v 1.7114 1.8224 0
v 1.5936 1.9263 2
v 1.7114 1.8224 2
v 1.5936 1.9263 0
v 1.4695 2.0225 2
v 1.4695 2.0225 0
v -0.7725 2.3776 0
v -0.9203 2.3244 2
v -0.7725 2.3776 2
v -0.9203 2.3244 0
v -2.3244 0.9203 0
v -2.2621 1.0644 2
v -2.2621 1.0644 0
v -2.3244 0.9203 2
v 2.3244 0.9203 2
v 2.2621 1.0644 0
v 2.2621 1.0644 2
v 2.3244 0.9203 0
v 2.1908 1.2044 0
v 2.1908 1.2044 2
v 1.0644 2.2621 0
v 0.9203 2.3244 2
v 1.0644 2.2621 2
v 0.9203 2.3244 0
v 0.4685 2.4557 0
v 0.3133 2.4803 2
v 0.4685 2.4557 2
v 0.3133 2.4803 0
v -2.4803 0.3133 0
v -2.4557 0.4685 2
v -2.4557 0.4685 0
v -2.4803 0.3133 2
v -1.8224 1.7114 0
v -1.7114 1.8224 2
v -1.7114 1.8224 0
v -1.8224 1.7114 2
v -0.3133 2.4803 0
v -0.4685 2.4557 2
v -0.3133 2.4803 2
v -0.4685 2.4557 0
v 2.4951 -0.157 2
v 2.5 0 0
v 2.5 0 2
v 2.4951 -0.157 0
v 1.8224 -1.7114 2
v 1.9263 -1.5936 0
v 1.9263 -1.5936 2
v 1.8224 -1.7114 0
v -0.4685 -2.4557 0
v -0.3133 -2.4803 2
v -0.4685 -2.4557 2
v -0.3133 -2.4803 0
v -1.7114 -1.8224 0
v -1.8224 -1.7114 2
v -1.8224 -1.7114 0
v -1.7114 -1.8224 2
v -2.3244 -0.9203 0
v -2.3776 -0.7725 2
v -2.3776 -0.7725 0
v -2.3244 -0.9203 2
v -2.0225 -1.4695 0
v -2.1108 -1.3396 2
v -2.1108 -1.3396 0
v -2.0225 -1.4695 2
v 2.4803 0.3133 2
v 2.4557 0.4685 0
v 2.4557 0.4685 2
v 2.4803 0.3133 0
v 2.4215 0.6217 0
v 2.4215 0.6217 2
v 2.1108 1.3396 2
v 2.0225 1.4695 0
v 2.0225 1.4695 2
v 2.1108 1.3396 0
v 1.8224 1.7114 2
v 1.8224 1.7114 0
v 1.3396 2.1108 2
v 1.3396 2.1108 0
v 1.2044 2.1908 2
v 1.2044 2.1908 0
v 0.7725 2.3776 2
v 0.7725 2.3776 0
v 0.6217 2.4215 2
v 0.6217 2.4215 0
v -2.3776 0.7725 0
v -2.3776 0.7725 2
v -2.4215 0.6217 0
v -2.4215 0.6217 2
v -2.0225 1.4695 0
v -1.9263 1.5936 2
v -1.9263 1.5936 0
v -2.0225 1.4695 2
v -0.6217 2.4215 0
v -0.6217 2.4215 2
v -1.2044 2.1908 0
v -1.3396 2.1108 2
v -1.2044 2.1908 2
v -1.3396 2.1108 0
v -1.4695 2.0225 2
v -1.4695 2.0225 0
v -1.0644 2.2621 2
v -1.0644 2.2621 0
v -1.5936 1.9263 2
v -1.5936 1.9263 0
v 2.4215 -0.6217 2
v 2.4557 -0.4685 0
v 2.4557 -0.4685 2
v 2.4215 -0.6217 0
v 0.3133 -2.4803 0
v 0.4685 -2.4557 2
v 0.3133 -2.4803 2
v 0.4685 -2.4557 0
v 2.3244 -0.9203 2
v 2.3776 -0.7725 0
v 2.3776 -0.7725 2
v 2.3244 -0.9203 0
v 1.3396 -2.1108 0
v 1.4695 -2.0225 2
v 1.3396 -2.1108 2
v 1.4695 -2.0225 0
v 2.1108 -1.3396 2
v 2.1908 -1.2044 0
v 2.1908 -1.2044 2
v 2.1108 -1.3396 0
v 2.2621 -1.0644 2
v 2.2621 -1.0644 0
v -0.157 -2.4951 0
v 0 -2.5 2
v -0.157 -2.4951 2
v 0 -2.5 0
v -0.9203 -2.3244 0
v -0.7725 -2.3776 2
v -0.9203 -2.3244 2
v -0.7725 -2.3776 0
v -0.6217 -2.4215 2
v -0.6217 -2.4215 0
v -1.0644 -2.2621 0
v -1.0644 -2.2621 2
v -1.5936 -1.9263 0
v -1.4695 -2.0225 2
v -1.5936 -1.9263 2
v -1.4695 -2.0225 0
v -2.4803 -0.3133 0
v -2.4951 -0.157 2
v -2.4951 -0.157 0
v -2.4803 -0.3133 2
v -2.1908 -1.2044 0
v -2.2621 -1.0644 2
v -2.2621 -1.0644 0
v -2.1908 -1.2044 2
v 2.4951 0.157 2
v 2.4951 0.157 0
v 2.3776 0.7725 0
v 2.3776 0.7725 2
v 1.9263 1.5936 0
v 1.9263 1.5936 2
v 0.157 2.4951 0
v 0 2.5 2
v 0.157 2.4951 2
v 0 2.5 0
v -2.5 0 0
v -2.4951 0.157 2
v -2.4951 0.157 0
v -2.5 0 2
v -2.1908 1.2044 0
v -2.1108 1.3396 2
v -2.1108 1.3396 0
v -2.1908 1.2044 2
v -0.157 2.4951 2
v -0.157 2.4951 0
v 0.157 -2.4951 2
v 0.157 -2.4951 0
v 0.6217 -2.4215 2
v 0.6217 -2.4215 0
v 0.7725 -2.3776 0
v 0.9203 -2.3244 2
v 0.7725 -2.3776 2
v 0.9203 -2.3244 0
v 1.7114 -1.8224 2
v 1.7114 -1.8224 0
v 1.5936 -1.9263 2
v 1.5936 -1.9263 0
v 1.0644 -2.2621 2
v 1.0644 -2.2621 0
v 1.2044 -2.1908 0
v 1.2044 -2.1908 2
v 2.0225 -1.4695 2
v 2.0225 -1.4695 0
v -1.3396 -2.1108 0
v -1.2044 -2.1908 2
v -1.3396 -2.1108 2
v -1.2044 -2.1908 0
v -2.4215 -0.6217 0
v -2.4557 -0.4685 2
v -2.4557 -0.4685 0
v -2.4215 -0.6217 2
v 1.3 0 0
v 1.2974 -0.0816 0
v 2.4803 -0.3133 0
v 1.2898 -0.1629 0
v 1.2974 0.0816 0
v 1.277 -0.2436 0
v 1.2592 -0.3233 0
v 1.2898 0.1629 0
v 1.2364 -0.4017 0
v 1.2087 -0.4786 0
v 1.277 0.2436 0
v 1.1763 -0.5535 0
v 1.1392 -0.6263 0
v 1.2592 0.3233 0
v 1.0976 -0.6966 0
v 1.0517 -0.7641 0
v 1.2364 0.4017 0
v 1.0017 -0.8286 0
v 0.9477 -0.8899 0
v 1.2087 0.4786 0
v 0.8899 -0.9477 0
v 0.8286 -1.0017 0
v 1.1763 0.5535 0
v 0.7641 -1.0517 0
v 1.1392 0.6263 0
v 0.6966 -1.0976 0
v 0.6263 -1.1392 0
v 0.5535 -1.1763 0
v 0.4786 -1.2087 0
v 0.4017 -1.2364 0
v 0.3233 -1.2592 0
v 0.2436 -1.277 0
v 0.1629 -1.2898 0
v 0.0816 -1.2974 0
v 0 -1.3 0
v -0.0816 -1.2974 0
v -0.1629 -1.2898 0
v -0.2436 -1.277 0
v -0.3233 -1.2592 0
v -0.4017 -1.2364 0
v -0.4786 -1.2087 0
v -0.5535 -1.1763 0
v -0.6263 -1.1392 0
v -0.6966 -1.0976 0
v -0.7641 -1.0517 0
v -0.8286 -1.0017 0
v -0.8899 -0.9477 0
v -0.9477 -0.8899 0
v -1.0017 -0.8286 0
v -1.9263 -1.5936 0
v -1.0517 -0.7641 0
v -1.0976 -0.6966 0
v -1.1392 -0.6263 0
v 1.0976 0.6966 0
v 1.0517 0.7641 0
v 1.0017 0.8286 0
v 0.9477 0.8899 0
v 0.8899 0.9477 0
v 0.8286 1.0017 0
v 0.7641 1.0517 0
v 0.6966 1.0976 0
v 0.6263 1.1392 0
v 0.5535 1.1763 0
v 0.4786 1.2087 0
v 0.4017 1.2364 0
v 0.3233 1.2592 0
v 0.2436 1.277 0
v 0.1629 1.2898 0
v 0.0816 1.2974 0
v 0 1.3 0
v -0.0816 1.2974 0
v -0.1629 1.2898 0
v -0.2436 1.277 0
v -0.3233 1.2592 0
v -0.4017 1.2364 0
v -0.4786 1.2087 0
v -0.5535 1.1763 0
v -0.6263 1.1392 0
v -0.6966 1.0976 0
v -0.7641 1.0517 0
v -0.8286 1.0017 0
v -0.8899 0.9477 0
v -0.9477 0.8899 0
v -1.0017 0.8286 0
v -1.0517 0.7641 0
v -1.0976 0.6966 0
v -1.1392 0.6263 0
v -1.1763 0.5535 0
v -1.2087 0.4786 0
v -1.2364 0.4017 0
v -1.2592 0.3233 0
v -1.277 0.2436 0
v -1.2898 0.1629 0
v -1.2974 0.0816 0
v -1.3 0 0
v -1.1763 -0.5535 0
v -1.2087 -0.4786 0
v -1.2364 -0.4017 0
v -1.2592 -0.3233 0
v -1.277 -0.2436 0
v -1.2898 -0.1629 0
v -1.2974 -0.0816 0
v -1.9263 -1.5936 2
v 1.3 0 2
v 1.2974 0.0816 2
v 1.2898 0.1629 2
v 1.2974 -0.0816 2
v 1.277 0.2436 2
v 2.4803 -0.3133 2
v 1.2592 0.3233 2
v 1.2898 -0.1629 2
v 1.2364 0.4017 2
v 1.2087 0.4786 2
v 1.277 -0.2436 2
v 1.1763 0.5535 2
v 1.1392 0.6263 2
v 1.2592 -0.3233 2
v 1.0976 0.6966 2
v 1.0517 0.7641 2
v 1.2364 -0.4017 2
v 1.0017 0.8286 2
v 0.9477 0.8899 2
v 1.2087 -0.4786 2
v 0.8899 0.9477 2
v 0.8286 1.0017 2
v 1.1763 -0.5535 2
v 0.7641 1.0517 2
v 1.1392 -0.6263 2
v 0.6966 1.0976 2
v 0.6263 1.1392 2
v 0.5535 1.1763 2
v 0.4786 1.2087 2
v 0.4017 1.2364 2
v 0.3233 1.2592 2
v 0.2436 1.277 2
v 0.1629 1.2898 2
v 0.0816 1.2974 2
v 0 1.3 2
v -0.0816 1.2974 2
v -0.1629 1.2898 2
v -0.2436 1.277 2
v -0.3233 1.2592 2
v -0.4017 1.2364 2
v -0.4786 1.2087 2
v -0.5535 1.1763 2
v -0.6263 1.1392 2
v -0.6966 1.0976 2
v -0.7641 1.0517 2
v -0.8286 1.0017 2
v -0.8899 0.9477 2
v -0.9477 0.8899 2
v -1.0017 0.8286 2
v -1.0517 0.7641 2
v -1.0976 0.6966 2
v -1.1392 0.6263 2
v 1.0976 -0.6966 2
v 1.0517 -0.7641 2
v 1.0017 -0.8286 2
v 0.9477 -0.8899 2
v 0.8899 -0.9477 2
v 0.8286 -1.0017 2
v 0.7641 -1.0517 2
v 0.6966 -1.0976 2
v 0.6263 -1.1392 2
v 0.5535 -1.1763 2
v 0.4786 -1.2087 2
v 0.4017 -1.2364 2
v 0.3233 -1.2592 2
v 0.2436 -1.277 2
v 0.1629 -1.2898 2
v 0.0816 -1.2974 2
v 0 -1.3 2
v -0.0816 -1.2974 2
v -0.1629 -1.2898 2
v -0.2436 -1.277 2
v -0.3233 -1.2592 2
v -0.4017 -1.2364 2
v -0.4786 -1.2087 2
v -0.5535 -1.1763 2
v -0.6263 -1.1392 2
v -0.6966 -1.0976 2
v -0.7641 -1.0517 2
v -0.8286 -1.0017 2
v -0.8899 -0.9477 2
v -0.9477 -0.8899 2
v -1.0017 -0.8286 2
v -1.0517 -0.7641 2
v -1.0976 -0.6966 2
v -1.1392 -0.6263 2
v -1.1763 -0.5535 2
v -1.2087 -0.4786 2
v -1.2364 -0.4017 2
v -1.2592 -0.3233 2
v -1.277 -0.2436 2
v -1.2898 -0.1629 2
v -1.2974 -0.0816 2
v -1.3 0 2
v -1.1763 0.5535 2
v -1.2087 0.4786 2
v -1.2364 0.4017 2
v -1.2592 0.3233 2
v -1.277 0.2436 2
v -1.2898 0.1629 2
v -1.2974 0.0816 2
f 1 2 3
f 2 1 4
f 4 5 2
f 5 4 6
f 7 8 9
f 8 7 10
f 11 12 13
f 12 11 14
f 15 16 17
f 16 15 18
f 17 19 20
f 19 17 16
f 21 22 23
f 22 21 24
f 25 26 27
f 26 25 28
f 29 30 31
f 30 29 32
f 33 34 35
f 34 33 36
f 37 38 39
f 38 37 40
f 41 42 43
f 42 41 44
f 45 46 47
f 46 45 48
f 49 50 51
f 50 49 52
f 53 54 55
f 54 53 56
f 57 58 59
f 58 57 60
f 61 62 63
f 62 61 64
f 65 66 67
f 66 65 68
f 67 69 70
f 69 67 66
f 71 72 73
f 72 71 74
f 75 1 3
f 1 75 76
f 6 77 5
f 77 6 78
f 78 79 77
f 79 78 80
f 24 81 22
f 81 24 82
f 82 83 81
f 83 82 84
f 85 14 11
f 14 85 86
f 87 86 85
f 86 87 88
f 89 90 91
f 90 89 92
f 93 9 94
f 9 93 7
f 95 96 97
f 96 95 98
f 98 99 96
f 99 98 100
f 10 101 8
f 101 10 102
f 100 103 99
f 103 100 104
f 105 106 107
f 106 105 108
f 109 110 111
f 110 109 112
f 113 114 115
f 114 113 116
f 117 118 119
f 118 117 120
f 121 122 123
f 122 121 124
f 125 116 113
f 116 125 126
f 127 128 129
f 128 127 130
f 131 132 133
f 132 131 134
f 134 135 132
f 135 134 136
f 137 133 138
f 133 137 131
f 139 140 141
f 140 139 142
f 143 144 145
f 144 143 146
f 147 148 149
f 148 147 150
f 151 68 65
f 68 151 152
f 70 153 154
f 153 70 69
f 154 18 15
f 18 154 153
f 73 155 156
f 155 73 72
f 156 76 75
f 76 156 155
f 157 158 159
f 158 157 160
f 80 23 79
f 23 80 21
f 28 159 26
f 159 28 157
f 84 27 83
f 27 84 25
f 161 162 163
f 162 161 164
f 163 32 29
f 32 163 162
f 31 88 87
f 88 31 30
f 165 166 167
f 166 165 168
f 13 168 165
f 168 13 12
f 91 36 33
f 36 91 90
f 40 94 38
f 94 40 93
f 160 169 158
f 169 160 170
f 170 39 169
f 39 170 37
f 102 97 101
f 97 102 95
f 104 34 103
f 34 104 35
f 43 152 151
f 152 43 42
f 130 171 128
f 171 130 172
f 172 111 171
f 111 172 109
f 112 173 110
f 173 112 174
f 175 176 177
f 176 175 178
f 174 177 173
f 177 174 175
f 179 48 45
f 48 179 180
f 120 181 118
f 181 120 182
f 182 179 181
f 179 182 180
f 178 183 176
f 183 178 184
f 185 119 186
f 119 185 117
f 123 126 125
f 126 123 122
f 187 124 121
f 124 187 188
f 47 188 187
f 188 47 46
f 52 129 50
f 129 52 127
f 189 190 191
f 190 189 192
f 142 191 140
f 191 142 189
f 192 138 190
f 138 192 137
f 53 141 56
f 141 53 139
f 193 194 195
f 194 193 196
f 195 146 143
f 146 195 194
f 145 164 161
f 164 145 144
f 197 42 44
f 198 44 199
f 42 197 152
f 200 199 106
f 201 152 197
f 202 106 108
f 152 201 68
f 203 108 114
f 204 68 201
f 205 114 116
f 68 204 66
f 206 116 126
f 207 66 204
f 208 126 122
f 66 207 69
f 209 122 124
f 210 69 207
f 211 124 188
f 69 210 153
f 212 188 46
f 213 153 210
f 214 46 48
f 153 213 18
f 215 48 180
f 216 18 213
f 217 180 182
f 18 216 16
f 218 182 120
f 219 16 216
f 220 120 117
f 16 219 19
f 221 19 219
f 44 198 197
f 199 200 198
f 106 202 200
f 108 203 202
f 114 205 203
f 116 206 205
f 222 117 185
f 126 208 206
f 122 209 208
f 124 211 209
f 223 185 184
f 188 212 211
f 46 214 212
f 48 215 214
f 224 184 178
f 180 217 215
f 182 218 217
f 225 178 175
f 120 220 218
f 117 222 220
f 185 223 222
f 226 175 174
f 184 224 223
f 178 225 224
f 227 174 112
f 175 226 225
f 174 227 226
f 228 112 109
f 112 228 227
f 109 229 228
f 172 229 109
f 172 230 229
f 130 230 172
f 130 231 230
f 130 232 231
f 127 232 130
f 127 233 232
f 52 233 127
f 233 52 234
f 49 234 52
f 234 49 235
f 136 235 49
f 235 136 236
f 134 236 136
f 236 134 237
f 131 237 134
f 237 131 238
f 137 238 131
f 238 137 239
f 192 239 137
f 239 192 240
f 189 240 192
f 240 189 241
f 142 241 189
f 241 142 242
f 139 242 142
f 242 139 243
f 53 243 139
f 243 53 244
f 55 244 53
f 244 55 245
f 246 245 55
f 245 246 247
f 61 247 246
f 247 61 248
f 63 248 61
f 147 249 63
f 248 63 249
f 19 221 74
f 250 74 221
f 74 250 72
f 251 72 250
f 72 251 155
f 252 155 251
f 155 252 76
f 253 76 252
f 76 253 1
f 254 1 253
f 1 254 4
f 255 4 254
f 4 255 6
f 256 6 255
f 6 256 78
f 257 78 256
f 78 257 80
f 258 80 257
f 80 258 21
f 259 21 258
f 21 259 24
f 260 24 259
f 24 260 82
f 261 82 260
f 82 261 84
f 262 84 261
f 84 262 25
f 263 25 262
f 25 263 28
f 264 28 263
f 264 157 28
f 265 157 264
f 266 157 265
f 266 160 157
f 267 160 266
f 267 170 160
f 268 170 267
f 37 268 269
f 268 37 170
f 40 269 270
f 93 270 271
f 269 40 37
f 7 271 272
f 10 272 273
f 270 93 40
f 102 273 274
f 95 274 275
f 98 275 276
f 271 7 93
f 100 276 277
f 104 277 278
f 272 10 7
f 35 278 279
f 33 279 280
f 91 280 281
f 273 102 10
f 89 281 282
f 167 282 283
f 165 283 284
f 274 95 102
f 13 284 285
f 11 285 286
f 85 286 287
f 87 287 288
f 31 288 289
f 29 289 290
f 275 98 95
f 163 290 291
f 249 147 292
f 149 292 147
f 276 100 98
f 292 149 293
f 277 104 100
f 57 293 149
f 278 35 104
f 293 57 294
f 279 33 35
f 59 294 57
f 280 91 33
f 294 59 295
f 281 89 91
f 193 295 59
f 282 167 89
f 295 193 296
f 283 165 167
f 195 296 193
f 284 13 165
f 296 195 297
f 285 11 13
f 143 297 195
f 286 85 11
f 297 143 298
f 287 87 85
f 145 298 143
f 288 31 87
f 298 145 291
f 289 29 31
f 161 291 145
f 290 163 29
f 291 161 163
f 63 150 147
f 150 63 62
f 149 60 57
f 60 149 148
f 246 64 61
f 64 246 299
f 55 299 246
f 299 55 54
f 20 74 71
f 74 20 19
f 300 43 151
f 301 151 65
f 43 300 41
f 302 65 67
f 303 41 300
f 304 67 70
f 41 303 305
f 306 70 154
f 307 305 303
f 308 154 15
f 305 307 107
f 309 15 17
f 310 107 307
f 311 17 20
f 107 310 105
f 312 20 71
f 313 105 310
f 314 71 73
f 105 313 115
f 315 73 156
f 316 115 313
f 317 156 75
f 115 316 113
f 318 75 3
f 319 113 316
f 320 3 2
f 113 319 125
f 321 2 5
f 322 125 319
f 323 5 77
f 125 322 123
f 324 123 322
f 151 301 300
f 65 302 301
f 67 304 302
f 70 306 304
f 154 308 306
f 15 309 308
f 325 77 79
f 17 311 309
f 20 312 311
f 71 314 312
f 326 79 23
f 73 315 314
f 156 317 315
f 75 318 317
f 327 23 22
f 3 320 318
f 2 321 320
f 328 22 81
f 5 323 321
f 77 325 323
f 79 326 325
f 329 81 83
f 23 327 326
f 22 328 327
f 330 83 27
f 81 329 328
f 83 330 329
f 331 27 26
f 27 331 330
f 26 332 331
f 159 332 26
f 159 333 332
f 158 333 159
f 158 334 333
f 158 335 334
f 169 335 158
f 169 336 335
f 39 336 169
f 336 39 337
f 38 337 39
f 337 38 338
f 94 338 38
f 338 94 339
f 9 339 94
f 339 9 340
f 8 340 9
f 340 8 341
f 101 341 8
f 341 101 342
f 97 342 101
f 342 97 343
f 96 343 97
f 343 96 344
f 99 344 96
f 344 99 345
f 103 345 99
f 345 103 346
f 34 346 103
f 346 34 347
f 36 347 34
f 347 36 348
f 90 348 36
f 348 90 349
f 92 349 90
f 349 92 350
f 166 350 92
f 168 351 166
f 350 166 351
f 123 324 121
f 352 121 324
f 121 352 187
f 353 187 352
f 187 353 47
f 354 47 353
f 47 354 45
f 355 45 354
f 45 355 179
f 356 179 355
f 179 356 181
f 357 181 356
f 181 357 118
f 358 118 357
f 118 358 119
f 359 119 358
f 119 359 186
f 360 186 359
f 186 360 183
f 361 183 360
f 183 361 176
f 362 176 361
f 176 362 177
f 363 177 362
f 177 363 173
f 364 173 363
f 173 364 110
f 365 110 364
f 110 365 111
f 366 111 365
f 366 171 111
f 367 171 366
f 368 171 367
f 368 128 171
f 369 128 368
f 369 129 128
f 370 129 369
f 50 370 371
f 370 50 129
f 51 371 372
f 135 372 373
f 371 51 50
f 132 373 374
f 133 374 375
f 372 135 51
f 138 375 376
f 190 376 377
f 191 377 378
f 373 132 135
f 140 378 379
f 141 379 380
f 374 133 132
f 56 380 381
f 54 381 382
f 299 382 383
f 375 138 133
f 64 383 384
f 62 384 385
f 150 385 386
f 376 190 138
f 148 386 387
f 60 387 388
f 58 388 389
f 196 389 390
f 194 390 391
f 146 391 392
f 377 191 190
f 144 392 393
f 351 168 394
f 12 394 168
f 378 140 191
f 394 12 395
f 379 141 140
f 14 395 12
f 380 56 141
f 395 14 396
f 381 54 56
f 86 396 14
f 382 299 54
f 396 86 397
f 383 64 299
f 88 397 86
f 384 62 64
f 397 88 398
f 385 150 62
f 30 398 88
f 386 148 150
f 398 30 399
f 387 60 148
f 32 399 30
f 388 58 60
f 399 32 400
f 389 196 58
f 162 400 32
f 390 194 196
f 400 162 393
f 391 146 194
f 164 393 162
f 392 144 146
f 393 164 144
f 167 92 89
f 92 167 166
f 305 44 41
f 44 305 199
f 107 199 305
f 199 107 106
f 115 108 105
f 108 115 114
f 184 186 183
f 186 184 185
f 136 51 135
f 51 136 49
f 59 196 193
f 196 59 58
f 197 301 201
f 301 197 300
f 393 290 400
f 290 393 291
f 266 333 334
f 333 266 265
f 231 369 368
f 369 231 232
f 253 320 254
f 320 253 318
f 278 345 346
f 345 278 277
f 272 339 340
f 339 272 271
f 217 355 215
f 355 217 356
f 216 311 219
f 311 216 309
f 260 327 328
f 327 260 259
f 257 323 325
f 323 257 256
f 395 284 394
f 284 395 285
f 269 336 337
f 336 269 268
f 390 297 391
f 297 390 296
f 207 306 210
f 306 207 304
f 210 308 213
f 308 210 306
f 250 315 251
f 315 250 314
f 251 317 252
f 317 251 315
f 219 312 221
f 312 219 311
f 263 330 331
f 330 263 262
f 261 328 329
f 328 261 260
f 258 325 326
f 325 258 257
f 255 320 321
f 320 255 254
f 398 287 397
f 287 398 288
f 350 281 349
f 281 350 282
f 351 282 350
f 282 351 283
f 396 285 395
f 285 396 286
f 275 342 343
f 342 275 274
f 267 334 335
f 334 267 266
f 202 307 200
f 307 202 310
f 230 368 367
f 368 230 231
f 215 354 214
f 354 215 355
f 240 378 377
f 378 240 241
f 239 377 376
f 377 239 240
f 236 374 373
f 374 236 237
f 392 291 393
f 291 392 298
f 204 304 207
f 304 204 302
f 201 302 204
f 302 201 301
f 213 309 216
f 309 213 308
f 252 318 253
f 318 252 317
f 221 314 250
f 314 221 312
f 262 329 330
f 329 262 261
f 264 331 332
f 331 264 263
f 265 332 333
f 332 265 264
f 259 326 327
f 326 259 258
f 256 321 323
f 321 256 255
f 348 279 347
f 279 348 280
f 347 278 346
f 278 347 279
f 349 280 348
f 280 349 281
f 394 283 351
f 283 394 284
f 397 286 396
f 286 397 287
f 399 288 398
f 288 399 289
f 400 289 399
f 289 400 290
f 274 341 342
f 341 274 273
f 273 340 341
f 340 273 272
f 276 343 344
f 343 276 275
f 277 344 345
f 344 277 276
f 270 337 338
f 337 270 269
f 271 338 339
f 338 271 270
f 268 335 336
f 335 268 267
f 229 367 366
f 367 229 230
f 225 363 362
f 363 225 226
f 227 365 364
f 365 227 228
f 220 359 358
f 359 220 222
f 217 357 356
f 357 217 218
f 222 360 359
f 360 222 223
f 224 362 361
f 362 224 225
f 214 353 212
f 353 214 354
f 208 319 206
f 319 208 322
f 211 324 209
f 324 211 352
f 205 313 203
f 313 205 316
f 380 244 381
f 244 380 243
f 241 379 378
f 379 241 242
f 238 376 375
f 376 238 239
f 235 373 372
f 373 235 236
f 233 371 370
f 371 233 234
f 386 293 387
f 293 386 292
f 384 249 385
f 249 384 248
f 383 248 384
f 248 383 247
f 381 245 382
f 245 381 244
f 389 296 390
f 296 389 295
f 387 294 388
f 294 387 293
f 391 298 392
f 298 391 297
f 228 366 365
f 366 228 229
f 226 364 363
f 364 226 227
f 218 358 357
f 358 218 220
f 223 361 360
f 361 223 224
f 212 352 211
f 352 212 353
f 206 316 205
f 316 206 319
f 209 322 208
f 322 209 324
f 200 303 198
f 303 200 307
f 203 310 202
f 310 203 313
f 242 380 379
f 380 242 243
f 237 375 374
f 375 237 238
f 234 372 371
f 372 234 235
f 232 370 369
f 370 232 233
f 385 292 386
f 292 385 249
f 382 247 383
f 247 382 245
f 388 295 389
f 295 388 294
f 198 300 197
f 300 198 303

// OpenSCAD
// file: config.scad
//Parameters for servo_lx16a
$fn = 24;
//x,y,z => l,w,h


servo_l         = 45.20; 
servo_w         = 24.70; 
body_h          = 32;

servo_h         = 35;

hub_offset      = 10.10;

rad = 2;


w_between_holes = 20.5;
l_between_top_holes = 20.7;
l_between_bottom_holes = 24.45;
top_hole_l_offset = 6.1;
bottom_hole_l_offset = 2.35;

hole_dia = 1.6;
attach_screw_l = 5;

top_hub_carve_h = 2.6;
bottom_hub_carve_h = 3.4;

top_attach_carve_h = 1.1;
bottom_attach_carve_h = 1.9;

hub_carve_r = 10.8;

hub_r = 10.1;

w_between_ridges = 19.5;

top_horn_h = 3.20;
bottom_horn_h = 3.85;

top_horn_r = 3.15;
bottom_horn_r = 3;



hub_h           = 4;
small_hub_r     = 6.15/2;  
horn_r          = 4.66/2;
horn_h          = 3;

wire_l          = 4;
wire_w          = 1.5;
wire_h          = 1;
wire_place      = 4.8;
// file: electronics.scad
$fn=100;

//on_off_switch();

//pi_zero();

//translate ([0,100,0])
//pca9685();

//dc_dc();

//pi_camera();



module header(pins, rows){
  color("darkgrey") cube([2.54*pins,2.54*rows,1.27]);
  
  color("gold")
  for(x=[0:pins-1],y=[0:rows-1])
    translate([x*2.54+(1.27+.6)/2,y*2.54+(1.27+.6)/2,-3.5]) cube([0.6,0.6,11.5]);
}


module pi_zero(){
    // PCB
    color("limegreen") difference(){
        hull(){
            translate([-(65-6)/2,-(30-6)/2,0]) cylinder(r=3, h=1.4 );
            translate([-(65-6)/2, (30-6)/2,0]) cylinder(r=3, h=1.4 );
            translate([ (65-6)/2,-(30-6)/2,0]) cylinder(r=3, h=1.4 );
            translate([ (65-6)/2, (30-6)/2,0]) cylinder(r=3, h=1.4 );
        }
        
        translate([-65/2+3.5,-30/2+3.5,-1]) cylinder(d=2.75, h=3);
        translate([-65/2+3.5, 30/2-3.5,-1]) cylinder(d=2.75, h=3);
        translate([65/2-3.5,-30/2+3.5,-1]) cylinder(d=2.75, h=3);
        translate([65/2-3.5, 30/2-3.5,-1]) cylinder(d=2.75, h=3);
    }
    
    // Header
    translate([-10*2.54,30/2-2.54-3.5,1.4])
    header(20,2);
    
    translate([-65/2,-30/2,1.4]){
        color("silver"){
        
            // micro USB
            translate([41-8/2,-1.5,0]) cube([8,6,2.6]);
            translate([54-8/2,-1.5,0]) cube([8,6,2.6]);        
            
            // HDMI
            translate([6.9,-1.5,0]) cube([13,7,3]);
        }
    
        color("darkgrey"){
        
            // Camera
            translate([64-4/2,7.1,0]) cube([4,16,2.5]);
        }
    
        // Micro SD Card
        color("silver") translate([0,8.6,-0]) cube([13,14,1.5]);    
        color("darkgrey") translate([-2.4,10.1,0]) cube([2.4,11,1]);
    }
}



module pca9685(withHeader=true){  
  
    // PCB
    color("limegreen") difference(){
        translate([0,0,0]) hull(){
            translate([-(62.5-6)/2,-(25.4-6)/2,0]) cylinder(r=3, h=1.4 );
            translate([-(62.5-6)/2, (25.4-6)/2,0]) cylinder(r=3, h=1.4 );
            translate([ (62.5-6)/2,-(25.4-6)/2,0]) cylinder(r=3, h=1.4 );
            translate([ (62.5-6)/2, (25.4-6)/2,0]) cylinder(r=3, h=1.4 );
        }
        
        translate([-55.9/2,-18.8/2,-1]) cylinder(d=2.75, h=3);
        translate([-55.9/2, 18.8/2,-1]) cylinder(d=2.75, h=3);
        translate([55.9/2,-18.8/2,-1]) cylinder(d=2.75, h=3);
        translate([55.9/2, 18.8/2,-1]) cylinder(d=2.75, h=3);
    } 
    
    
    // capacitor
    color("silver")
    translate([-(62.5/2)+17.1,(25.4-8.3)/2,1.4])
    cylinder(d=8.3, h=12.7);
    
    //power connector
    color("blue")
    translate([-(62.5/2)+25.1+2.54*2,(25.4-8.3)/2,1.4])
    cube([2.54*2,4,8]);
    
    // Header top
    translate([-(62.5/2)+5.65,-25.4/2,1.4])
    header(4,3);
    
    translate([2.25,-25.4/2,1.4])
    header(4,3);
    
    translate([-2.25-2.54*4,-25.4/2,1.4])
    header(4,3);
    
    translate([62.5/2-5.65-2.54*4,-25.4/2,1.4])
    header(4,3);
    
    translate([62.5/2,-25.4/2+5.08,1.4])
    rotate([0,0,90])
    header(6,1);
    
    translate([-62.5/2+2.54,-25.4/2+5.08,1.4])
    rotate([0,0,90])
    header(6,1);

  
}

module dc_dc(){
    
    // PCB
    color("limegreen") difference(){
        translate([0,0,0]) hull(){
            translate([-(24.5-6)/2,-(48-6)/2,0]) cylinder(r=3, h=1.4 );
            translate([-(24.5-6)/2, (48-6)/2,0]) cylinder(r=3, h=1.4 );
            translate([ (24.5-6)/2,-(48-6)/2,0]) cylinder(r=3, h=1.4 );
            translate([ (24.5-6)/2, (48-6)/2,0]) cylinder(r=3, h=1.4 );
        }
      
        translate([0,0,-1]) {
            
            //translate([-17/2,-35/2,0])
            //cylinder(d=3.15, h=2.5);
            
            translate([-17/2,35/2, 0])
            cylinder(d=3.15, h=2.5);
            
            translate([17/2,-35/2, 0])
            cylinder(d=3.15, h=2.5);
            
            //translate([17/2,35/2, 0])
            //cylinder(d=3.15, h=2.5); 
          
        }


    } 
    
    
    // capacitors
    color("darkblue")
    translate([-(24.5/2)+12.1,(48-8)/2,1.4])
    cylinder(d=8, h=10);
    
    color("darkblue")
    translate([-(24.5/2)+12.1,-(48-8)/2,1.4])
    cylinder(d=8, h=10);
    
    //toroid
    
    difference(){
        
        color("orange")
        translate([(24.5/2)-22.1+9,(48-30)/2,1.4])
        cylinder(d=12, h=7.6);
        
        color("orange")
        translate([(24.5/2)-22.1+9,(48-30)/2,0.5])
        cylinder(d=6, h=11);

        
    }
    
    
    //potentiometer
    color("blue")
    translate([24.5/2-2,-48/2+9,1.4])
    rotate([0,0,90])
    cube([5,10,11]);
    
    
    //IC
    color("black")
    translate([24.5/2-8,-48/2+15,1.4])
    rotate([0,0,90])
    cube([11,11,5]);
    
    
}


module on_off_switch(){
    
    union(){
        
        color("silver")
        translate([-8/2, -4/2, 0])
        cube([8, 4, 3.8]);
        
        color("black")
        translate([-1.5/2, -1.5/2, 3.8])
        cube([1.5, 1.5, 3]);
        
        color("silver")
        translate([-0.5/2, -0.5/2, -3.2])
        cube([0.5, 0.5, 3.2]);
        
        color("silver")
        translate([-0.5/2-2.5, -0.5/2, -3.2])
        cube([0.5, 0.5, 3.2]);
        
        color("silver")
        translate([-0.5/2+2.5, -0.5/2, -3.2])
        cube([0.5, 0.5, 3.2]);
        
        
        
        
    }
    
}


module pi_camera(){
    difference(){
        union(){
            color("limegreen")
            translate([-25.5/2, -24.5/2, 0])
            cube([25.5, 24.5, 0.9]);
            
            
            //camera sensor
            color("darkgrey")
            translate([-8.5/2, -8.5/2+2.4, 0.9])
            cube([8.5, 8.5, 3.5]);
            
            color("darkgrey")
            translate([0, 2.4, 0.9+3.5])
            cylinder(d=8, h=0.75, $fn=32);
        
            color("darkgrey")
            translate([0, 2.4, 0.9+3.5+0.75])
            cylinder(d=6, h=0.75, $fn=32);
            
            color("darkgrey")
            translate([0, 2.4, 0.9+3.5+0.75+0.75])
            cylinder(d1=2, d2=5, h=2, $fn=32);
            
            //sensor connector
            color("orange")
            translate([-8.5/2, -8.5/2+2.4-10.5, 0.9])
            cube([8.5, 10.5, 2.5]);
            
            //led
            color("white")
            translate([-20/2, -8.5/2+2.4-7, 0.9])
            cube([20, 3, 1]);            
            
            
            //connector
            color("white")
            translate([-20.8/2, -5.5+24/2, -2.4])
            cube([20.8, 5.5, 2.4]);
            
            
    
        }
          
        translate([-21/2,-20/2,-1]) cylinder(d=2.1, h=3);
        translate([-21/2, 20/2-7.5,-1]) cylinder(d=2.1, h=3);
        translate([21/2,-20/2,-1]) cylinder(d=2.1, h=3);
        translate([21/2, 20/2-7.5,-1]) cylinder(d=2.1, h=3);
    }
    
    
}
// file: servo_5g.scad
include <Config.scad>

servo_5g();


$fn = 24;
//x,y,z => l,w,h


module servo_5g() {
  
    translate([-servo5_l/2, -servo5_w/2, -body5_h/2-hub5_h/2-horn5_h/2]) {
    
        color("white") 
        translate([servo5_l/2,servo5_l/2,body5_h+hub5_h])
        cylinder(r=horn5_r,h=horn5_h);
        
        color("deepSkyBlue",.7) //deepSkyBlue
        union() {
            cube([servo5_l,servo5_w,body5_h]);
            translate([servo5_l/2,servo5_l/2,body5_h])
            cylinder(r=servo5_l/2,h=hub5_h);
            translate([servo5_l/2,servo5_l/2+3.7,body5_h])
            cylinder(r=small_hub5_r,h=hub5_h);
            
        }
    }
}
// file: servo_12g.scad
include <config.scad>


servo_12g();


$fn = 24;
//x,y,z => l,w,h


module servo_12g() {
  
    translate([-servo_l/2, -servo_w/2, -body_h/2-hub_h/2-horn_h/2]) {
    
        color("white") 
        translate([servo_l/2,servo_l/2,body_h+hub_h])
        cylinder(r=horn_r,h=horn_h);
        
        color("deepSkyBlue",.7) //deepSkyBlue
        union() {
            cube([servo_l,servo_w,body_h]);
            translate([servo_l/2,servo_l/2,body_h])
            cylinder(r=servo_l/2,h=hub_h);
            translate([servo_l/2,servo_l/2+6.30,body_h])
            cylinder(r=small_hub_r,h=hub_h);
            
        }
    }
}

module roundedRect(size, radius)
{
x = size[0];
y = size[1];
z = size[2];

translate([x/2+radius/2, y/2+radius/2, 0]){
linear_extrude(height=z)
hull()
{
// place 4 circles in the corners, with the given radius
translate([(-x/2)+(radius/2), (-y/2)+(radius/2), 0])
circle(r=radius);

translate([(x/2)-(radius/2), (-y/2)+(radius/2), 0])
circle(r=radius);

translate([(-x/2)+(radius/2), (y/2)-(radius/2), 0])
circle(r=radius);

translate([(x/2)-(radius/2), (y/2)-(radius/2), 0])
circle(r=radius);
}
}
}
// file: Config.scad
//Parameters for 12g servo
$fn = 24;
//x,y,z => l,w,h

tap_r = 0.85;
hole_r = 1.0;

servo_l         = 12;  // was 12
servo_w         = 24;  // was 23
body_h          = 20.80;

servo_h         = 27; //not used in code was 27

wing_w          = 4.5;
wing_h          = 2.33;
wing_place      = 16.3;   
hole_offset     = 2.2;    //not checked
mount_hole_r    = 2/2;
mount_slot      = 1;

servo_ww        = servo_w+wing_w*2; // not used in code but is handy number

hub_h           = 4;
small_hub_r     = 6.15/2;  
horn_r          = 4.66/2;
horn_h          = 3;

wire_l          = 4;
wire_w          = 1.5;
wire_h          = 1;
wire_place      = 4.8;

servo_full_w    = servo_w+wing_w*2;

rad = 2;




//Parameters for 5g servo

servo5_l         = 8.6; 
servo5_w         = 18.6; 
body5_h          = 14.65;


hub5_h = 2.15;
small_hub5_r = 4.6/2;  
horn5_r = 4.66/2;
horn5_h = 3;

servo5_h         = body5_h+hub5_h+horn5_h;

mount_x = servo5_l + 2;
mount_y = servo5_w + 2;
mount_round = 1;
servo_tol = 0.2;
servo5_x     = servo5_l + servo_tol*2; //~12
servo5_y     = servo5_w + servo_tol*8; //~23
// main file
include <Config.scad>
use <servo_12g.scad>
use <servo_5g.scad>
use <electronics.scad>

$fn = 100;


Citro6_27();


module Citro6_27x4(){
    
    for (y =[0:1]) {
        for (x =[0:1]) {
            translate([x*10, y*10, 0])
            difference(){
                
                translate([0,0,0])
                cylinder(d=5, h=2);
                
                translate([0,0,-1])
                cylinder(d=2.6, h=4);
                
            }
        }
    }
    
}


module Citro6_27(){
    difference(){
        
        translate([0,0,0])
        cylinder(d=5, h=2);
        
        translate([0,0,-1])
        cylinder(d=2.6, h=4);
        
    }
}
